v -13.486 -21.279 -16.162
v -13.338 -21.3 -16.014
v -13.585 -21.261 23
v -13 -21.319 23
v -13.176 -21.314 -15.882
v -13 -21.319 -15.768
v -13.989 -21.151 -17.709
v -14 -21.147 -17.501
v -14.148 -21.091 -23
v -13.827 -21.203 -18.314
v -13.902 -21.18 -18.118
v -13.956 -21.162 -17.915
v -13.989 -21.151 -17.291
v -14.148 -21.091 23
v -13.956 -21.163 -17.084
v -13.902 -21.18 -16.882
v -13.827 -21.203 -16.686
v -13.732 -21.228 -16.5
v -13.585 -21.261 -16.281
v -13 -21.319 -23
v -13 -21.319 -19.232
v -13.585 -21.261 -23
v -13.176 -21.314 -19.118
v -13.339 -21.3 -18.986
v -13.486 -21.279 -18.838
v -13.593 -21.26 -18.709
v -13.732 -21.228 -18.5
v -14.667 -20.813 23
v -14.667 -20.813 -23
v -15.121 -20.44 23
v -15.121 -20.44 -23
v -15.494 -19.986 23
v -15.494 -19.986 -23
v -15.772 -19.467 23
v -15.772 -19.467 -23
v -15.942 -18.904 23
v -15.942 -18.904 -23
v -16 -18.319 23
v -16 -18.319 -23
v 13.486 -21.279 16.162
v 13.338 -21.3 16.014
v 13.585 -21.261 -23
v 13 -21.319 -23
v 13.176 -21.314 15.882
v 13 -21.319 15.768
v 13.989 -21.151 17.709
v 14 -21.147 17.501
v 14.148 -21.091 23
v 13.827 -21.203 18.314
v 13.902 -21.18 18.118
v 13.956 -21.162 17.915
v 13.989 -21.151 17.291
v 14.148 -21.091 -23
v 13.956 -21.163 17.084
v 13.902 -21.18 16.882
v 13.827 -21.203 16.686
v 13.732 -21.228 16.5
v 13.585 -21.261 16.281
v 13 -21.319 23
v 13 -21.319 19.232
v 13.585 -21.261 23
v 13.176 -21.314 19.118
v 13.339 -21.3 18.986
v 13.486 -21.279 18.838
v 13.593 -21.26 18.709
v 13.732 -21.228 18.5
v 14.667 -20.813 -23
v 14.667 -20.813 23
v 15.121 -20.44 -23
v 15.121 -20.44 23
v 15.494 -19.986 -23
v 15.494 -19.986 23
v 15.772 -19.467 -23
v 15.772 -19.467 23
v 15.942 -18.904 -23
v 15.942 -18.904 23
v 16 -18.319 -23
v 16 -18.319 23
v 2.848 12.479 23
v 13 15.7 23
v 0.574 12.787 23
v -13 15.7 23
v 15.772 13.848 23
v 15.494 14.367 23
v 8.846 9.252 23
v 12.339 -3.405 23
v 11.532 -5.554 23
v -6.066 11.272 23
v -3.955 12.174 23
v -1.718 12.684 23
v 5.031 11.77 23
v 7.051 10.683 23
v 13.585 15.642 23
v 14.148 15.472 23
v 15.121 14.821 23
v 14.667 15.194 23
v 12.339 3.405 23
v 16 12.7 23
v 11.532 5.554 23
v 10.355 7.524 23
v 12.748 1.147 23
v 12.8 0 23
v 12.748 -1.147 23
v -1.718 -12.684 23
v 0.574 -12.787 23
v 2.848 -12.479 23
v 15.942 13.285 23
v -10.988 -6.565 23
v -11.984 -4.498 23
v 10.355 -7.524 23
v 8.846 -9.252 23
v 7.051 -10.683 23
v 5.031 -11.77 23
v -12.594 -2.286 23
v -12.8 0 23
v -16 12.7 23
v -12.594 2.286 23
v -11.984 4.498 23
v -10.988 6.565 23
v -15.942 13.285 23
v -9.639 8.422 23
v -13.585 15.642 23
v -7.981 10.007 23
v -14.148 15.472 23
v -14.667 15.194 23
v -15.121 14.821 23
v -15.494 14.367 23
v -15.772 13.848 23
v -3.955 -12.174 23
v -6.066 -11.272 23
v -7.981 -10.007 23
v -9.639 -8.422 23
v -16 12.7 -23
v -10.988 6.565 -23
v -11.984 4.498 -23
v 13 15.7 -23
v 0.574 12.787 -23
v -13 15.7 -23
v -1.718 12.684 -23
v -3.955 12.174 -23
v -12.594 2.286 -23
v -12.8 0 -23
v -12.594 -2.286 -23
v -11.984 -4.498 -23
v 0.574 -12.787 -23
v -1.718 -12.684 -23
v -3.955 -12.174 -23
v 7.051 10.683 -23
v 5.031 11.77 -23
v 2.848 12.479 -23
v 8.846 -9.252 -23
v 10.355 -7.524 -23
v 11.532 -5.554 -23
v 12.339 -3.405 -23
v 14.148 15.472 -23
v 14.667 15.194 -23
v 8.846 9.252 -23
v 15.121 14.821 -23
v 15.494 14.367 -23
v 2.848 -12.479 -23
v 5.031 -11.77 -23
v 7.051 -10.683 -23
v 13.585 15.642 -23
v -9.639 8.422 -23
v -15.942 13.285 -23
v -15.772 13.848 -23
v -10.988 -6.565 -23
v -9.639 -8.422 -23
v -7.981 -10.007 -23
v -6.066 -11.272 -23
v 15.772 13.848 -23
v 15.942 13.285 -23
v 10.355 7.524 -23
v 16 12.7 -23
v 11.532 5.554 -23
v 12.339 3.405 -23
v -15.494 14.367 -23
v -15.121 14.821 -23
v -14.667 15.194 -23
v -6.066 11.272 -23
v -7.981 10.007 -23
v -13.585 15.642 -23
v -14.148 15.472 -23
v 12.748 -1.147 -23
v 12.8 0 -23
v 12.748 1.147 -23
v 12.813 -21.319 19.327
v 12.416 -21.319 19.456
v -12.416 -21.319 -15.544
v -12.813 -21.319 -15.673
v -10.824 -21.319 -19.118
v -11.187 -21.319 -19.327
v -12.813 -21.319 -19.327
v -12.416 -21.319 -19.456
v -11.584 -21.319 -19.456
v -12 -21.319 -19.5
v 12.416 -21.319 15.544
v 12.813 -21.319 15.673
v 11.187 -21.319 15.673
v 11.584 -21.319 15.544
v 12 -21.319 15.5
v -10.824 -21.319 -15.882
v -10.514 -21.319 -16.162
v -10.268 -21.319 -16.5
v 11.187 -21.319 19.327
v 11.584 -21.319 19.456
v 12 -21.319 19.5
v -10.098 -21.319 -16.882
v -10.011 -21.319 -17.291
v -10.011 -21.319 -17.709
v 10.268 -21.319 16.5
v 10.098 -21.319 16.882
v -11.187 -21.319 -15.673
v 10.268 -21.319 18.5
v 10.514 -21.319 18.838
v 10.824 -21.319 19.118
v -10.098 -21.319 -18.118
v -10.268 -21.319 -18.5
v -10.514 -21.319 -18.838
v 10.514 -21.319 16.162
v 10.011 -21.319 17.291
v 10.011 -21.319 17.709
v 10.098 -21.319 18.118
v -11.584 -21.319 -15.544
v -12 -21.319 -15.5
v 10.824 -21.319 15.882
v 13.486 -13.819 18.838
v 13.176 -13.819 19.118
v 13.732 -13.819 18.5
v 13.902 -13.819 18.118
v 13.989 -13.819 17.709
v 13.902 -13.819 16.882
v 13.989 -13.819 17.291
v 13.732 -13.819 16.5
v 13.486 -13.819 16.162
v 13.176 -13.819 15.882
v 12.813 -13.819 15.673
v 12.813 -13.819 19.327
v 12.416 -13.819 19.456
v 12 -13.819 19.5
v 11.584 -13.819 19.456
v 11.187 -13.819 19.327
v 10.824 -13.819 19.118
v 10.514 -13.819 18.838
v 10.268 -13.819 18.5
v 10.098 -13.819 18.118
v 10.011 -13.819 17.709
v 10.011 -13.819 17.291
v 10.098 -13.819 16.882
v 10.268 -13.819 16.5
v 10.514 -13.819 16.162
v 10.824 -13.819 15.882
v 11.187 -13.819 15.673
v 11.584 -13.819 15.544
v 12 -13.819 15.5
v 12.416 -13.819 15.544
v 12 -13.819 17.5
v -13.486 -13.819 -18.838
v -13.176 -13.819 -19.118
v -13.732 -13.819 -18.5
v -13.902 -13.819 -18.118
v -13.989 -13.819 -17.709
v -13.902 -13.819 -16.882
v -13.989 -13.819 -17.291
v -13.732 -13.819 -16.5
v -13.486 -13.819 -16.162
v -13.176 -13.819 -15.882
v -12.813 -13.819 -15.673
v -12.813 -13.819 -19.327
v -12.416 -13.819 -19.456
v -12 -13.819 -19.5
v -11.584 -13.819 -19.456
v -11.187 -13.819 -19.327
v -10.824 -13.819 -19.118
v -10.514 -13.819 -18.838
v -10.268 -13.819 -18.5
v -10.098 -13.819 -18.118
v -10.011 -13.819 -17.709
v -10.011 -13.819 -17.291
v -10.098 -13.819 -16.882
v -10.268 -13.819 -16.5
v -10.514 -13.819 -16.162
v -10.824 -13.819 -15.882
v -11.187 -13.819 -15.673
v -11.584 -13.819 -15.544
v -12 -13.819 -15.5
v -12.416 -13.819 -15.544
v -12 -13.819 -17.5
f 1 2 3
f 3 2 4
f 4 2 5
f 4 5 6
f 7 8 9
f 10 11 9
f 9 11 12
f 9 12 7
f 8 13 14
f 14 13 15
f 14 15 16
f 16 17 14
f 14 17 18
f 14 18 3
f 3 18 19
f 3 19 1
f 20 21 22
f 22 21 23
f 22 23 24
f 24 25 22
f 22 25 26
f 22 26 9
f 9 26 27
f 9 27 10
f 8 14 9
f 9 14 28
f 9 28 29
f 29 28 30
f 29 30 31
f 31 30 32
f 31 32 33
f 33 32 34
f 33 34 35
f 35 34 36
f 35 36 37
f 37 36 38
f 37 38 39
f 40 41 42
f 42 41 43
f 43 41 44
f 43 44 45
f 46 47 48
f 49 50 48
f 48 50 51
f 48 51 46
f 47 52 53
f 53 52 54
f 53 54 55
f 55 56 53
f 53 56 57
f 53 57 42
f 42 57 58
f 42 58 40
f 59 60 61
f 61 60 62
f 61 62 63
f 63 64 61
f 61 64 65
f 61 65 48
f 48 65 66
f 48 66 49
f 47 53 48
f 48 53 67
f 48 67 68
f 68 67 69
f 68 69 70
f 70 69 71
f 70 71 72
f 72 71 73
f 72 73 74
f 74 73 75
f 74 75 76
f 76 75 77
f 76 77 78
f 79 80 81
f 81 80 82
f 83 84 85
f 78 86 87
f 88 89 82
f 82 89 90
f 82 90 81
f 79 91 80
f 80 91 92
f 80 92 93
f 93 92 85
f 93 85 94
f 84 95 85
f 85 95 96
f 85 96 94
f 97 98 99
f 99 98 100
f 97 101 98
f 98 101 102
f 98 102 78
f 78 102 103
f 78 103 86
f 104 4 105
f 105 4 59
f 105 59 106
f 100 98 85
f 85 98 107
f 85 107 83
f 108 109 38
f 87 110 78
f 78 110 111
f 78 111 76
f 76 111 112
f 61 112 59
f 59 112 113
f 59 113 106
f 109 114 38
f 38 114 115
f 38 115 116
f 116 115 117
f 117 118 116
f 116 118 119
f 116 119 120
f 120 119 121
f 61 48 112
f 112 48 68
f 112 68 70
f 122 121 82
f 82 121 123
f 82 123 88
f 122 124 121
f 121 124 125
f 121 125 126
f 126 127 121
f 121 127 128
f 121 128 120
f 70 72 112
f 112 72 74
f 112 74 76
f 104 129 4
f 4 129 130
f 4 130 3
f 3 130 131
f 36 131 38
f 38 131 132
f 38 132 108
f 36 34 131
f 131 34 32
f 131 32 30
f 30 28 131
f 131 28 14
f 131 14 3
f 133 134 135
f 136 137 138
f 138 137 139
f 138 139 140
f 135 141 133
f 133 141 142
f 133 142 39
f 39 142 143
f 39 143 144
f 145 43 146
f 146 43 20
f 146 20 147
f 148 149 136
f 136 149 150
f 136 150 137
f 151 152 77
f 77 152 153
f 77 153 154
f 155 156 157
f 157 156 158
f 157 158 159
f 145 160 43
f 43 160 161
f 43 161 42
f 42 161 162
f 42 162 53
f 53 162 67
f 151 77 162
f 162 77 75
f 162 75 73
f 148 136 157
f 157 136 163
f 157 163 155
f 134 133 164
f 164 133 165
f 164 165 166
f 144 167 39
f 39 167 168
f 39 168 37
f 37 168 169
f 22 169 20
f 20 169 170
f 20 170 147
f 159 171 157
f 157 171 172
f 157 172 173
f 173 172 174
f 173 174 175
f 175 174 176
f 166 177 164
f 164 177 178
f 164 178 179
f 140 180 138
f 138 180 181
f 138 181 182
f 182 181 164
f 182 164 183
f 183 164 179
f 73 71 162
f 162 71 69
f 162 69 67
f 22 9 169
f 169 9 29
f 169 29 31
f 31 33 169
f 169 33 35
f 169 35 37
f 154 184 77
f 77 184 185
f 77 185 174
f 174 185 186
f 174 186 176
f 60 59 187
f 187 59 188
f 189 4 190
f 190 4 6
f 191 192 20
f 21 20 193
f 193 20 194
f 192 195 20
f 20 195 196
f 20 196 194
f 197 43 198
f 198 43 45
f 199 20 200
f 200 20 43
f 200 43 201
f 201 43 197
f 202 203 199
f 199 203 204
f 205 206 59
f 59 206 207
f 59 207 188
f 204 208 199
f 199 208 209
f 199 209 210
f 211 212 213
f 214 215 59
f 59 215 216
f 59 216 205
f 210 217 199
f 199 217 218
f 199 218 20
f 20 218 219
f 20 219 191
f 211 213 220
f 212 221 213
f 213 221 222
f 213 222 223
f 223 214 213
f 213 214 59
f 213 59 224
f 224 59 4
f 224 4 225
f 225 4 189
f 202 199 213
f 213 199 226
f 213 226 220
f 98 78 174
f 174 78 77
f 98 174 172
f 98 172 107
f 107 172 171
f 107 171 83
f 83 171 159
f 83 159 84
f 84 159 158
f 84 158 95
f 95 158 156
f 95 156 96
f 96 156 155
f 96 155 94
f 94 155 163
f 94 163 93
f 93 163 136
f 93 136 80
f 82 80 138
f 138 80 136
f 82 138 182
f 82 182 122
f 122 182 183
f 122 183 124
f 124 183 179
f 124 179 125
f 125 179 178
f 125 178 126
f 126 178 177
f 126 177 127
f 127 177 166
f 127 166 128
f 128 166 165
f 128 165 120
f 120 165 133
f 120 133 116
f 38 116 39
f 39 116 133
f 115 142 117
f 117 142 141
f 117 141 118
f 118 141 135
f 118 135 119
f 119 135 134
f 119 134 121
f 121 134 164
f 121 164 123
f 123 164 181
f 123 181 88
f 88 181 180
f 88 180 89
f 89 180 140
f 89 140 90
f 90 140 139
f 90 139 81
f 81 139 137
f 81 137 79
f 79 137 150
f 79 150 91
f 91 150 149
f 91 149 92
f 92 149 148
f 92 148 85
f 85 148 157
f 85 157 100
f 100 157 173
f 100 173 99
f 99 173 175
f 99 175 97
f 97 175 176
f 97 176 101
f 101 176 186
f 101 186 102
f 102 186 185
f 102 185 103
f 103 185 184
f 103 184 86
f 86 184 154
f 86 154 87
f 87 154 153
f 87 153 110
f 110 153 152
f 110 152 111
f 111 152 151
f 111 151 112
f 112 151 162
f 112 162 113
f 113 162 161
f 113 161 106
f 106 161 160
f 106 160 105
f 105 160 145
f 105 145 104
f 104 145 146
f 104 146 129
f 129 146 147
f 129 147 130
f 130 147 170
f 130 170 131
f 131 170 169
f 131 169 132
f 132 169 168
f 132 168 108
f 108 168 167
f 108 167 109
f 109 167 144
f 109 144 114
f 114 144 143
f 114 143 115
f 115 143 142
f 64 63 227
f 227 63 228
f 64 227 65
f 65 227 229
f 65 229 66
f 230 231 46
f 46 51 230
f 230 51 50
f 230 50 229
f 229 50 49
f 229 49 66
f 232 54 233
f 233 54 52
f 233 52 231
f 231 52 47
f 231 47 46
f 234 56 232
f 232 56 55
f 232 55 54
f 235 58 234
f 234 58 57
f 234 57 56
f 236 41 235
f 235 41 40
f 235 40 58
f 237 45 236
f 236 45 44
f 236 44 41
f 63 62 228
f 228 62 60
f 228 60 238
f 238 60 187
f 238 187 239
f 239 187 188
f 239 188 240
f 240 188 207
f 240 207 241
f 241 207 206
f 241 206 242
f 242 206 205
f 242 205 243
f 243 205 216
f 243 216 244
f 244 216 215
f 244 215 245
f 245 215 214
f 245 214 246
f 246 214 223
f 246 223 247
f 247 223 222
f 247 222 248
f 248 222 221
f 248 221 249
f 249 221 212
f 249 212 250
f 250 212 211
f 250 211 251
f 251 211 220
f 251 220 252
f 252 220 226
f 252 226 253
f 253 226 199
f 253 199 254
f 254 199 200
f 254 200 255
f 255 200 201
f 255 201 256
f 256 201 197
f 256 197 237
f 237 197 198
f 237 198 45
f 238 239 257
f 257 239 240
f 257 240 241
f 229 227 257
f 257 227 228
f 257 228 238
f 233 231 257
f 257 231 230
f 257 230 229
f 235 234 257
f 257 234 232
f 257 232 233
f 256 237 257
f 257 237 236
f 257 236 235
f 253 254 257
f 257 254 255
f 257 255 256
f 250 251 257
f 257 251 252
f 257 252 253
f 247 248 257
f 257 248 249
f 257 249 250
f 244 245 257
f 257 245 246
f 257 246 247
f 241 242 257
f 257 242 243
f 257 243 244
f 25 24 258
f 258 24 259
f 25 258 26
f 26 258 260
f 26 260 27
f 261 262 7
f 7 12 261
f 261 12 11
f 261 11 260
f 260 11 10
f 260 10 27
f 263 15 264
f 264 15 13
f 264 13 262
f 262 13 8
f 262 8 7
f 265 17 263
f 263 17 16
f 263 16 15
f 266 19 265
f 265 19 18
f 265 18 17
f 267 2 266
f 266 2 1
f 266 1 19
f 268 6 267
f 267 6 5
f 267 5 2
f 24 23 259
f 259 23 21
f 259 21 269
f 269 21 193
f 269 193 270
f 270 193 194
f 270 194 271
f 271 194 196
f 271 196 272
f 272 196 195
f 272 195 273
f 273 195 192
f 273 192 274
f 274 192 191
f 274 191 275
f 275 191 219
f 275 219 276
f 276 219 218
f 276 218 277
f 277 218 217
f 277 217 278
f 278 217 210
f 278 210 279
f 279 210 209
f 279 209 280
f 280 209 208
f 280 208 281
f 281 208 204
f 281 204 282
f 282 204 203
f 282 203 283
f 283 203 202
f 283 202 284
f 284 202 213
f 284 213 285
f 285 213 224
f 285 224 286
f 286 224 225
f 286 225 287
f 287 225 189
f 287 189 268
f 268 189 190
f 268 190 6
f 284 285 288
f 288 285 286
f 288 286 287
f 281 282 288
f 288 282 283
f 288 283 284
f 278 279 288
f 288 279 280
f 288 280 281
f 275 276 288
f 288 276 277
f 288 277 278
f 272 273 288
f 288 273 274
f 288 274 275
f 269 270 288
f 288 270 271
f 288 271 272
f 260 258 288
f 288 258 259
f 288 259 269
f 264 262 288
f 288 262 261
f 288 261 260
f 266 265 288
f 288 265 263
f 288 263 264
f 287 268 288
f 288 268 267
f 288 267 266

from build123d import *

# Parameters (mm, degrees)
SKETCH1_R           = 12.8
BOSS_EXTRUDE1_DEPTH = 23
SKETCH2_R           = 2
CUT_EXTRUDE1_DEPTH  = 7.5


with BuildPart() as part:
    # Sketch1 → Boss-Extrude1 (new, symmetric)
    with BuildSketch(Plane.XY):
        with BuildLine():
            Line((-13, -21.319), (13, -21.319))
            ThreePointArc((13, -21.319), (15.121320344, -20.440320344), (16, -18.319))
            Line((16, -18.319), (16, 12.7))
            ThreePointArc((16, 12.7), (15.121320344, 14.821320344), (13, 15.7))
            Line((13, 15.7), (-13, 15.7))
            ThreePointArc((-13, 15.7), (-15.121320344, 14.821320344), (-16, 12.7))
            Line((-16, 12.7), (-16, -18.319))
            ThreePointArc((-16, -18.319), (-15.121320344, -20.440320344), (-13, -21.319))
        make_face()
        Circle(SKETCH1_R, mode=Mode.SUBTRACT)
    extrude(amount=BOSS_EXTRUDE1_DEPTH, both=True)

    # Sketch2 → Cut-Extrude1 (cut)
    with BuildSketch(Plane(origin=(0, -21.319, 0), x_dir=(1, 0, 0), z_dir=(0, 1, 0))):
        with Locations(Location((12, -17.5, 0), (0, 0, 60))):
            Circle(SKETCH2_R)
        with Locations(Location((-12, 17.5, 0), (0, 0, 120))):
            Circle(SKETCH2_R)
    extrude(amount=CUT_EXTRUDE1_DEPTH, mode=Mode.SUBTRACT)


solid = part.part
